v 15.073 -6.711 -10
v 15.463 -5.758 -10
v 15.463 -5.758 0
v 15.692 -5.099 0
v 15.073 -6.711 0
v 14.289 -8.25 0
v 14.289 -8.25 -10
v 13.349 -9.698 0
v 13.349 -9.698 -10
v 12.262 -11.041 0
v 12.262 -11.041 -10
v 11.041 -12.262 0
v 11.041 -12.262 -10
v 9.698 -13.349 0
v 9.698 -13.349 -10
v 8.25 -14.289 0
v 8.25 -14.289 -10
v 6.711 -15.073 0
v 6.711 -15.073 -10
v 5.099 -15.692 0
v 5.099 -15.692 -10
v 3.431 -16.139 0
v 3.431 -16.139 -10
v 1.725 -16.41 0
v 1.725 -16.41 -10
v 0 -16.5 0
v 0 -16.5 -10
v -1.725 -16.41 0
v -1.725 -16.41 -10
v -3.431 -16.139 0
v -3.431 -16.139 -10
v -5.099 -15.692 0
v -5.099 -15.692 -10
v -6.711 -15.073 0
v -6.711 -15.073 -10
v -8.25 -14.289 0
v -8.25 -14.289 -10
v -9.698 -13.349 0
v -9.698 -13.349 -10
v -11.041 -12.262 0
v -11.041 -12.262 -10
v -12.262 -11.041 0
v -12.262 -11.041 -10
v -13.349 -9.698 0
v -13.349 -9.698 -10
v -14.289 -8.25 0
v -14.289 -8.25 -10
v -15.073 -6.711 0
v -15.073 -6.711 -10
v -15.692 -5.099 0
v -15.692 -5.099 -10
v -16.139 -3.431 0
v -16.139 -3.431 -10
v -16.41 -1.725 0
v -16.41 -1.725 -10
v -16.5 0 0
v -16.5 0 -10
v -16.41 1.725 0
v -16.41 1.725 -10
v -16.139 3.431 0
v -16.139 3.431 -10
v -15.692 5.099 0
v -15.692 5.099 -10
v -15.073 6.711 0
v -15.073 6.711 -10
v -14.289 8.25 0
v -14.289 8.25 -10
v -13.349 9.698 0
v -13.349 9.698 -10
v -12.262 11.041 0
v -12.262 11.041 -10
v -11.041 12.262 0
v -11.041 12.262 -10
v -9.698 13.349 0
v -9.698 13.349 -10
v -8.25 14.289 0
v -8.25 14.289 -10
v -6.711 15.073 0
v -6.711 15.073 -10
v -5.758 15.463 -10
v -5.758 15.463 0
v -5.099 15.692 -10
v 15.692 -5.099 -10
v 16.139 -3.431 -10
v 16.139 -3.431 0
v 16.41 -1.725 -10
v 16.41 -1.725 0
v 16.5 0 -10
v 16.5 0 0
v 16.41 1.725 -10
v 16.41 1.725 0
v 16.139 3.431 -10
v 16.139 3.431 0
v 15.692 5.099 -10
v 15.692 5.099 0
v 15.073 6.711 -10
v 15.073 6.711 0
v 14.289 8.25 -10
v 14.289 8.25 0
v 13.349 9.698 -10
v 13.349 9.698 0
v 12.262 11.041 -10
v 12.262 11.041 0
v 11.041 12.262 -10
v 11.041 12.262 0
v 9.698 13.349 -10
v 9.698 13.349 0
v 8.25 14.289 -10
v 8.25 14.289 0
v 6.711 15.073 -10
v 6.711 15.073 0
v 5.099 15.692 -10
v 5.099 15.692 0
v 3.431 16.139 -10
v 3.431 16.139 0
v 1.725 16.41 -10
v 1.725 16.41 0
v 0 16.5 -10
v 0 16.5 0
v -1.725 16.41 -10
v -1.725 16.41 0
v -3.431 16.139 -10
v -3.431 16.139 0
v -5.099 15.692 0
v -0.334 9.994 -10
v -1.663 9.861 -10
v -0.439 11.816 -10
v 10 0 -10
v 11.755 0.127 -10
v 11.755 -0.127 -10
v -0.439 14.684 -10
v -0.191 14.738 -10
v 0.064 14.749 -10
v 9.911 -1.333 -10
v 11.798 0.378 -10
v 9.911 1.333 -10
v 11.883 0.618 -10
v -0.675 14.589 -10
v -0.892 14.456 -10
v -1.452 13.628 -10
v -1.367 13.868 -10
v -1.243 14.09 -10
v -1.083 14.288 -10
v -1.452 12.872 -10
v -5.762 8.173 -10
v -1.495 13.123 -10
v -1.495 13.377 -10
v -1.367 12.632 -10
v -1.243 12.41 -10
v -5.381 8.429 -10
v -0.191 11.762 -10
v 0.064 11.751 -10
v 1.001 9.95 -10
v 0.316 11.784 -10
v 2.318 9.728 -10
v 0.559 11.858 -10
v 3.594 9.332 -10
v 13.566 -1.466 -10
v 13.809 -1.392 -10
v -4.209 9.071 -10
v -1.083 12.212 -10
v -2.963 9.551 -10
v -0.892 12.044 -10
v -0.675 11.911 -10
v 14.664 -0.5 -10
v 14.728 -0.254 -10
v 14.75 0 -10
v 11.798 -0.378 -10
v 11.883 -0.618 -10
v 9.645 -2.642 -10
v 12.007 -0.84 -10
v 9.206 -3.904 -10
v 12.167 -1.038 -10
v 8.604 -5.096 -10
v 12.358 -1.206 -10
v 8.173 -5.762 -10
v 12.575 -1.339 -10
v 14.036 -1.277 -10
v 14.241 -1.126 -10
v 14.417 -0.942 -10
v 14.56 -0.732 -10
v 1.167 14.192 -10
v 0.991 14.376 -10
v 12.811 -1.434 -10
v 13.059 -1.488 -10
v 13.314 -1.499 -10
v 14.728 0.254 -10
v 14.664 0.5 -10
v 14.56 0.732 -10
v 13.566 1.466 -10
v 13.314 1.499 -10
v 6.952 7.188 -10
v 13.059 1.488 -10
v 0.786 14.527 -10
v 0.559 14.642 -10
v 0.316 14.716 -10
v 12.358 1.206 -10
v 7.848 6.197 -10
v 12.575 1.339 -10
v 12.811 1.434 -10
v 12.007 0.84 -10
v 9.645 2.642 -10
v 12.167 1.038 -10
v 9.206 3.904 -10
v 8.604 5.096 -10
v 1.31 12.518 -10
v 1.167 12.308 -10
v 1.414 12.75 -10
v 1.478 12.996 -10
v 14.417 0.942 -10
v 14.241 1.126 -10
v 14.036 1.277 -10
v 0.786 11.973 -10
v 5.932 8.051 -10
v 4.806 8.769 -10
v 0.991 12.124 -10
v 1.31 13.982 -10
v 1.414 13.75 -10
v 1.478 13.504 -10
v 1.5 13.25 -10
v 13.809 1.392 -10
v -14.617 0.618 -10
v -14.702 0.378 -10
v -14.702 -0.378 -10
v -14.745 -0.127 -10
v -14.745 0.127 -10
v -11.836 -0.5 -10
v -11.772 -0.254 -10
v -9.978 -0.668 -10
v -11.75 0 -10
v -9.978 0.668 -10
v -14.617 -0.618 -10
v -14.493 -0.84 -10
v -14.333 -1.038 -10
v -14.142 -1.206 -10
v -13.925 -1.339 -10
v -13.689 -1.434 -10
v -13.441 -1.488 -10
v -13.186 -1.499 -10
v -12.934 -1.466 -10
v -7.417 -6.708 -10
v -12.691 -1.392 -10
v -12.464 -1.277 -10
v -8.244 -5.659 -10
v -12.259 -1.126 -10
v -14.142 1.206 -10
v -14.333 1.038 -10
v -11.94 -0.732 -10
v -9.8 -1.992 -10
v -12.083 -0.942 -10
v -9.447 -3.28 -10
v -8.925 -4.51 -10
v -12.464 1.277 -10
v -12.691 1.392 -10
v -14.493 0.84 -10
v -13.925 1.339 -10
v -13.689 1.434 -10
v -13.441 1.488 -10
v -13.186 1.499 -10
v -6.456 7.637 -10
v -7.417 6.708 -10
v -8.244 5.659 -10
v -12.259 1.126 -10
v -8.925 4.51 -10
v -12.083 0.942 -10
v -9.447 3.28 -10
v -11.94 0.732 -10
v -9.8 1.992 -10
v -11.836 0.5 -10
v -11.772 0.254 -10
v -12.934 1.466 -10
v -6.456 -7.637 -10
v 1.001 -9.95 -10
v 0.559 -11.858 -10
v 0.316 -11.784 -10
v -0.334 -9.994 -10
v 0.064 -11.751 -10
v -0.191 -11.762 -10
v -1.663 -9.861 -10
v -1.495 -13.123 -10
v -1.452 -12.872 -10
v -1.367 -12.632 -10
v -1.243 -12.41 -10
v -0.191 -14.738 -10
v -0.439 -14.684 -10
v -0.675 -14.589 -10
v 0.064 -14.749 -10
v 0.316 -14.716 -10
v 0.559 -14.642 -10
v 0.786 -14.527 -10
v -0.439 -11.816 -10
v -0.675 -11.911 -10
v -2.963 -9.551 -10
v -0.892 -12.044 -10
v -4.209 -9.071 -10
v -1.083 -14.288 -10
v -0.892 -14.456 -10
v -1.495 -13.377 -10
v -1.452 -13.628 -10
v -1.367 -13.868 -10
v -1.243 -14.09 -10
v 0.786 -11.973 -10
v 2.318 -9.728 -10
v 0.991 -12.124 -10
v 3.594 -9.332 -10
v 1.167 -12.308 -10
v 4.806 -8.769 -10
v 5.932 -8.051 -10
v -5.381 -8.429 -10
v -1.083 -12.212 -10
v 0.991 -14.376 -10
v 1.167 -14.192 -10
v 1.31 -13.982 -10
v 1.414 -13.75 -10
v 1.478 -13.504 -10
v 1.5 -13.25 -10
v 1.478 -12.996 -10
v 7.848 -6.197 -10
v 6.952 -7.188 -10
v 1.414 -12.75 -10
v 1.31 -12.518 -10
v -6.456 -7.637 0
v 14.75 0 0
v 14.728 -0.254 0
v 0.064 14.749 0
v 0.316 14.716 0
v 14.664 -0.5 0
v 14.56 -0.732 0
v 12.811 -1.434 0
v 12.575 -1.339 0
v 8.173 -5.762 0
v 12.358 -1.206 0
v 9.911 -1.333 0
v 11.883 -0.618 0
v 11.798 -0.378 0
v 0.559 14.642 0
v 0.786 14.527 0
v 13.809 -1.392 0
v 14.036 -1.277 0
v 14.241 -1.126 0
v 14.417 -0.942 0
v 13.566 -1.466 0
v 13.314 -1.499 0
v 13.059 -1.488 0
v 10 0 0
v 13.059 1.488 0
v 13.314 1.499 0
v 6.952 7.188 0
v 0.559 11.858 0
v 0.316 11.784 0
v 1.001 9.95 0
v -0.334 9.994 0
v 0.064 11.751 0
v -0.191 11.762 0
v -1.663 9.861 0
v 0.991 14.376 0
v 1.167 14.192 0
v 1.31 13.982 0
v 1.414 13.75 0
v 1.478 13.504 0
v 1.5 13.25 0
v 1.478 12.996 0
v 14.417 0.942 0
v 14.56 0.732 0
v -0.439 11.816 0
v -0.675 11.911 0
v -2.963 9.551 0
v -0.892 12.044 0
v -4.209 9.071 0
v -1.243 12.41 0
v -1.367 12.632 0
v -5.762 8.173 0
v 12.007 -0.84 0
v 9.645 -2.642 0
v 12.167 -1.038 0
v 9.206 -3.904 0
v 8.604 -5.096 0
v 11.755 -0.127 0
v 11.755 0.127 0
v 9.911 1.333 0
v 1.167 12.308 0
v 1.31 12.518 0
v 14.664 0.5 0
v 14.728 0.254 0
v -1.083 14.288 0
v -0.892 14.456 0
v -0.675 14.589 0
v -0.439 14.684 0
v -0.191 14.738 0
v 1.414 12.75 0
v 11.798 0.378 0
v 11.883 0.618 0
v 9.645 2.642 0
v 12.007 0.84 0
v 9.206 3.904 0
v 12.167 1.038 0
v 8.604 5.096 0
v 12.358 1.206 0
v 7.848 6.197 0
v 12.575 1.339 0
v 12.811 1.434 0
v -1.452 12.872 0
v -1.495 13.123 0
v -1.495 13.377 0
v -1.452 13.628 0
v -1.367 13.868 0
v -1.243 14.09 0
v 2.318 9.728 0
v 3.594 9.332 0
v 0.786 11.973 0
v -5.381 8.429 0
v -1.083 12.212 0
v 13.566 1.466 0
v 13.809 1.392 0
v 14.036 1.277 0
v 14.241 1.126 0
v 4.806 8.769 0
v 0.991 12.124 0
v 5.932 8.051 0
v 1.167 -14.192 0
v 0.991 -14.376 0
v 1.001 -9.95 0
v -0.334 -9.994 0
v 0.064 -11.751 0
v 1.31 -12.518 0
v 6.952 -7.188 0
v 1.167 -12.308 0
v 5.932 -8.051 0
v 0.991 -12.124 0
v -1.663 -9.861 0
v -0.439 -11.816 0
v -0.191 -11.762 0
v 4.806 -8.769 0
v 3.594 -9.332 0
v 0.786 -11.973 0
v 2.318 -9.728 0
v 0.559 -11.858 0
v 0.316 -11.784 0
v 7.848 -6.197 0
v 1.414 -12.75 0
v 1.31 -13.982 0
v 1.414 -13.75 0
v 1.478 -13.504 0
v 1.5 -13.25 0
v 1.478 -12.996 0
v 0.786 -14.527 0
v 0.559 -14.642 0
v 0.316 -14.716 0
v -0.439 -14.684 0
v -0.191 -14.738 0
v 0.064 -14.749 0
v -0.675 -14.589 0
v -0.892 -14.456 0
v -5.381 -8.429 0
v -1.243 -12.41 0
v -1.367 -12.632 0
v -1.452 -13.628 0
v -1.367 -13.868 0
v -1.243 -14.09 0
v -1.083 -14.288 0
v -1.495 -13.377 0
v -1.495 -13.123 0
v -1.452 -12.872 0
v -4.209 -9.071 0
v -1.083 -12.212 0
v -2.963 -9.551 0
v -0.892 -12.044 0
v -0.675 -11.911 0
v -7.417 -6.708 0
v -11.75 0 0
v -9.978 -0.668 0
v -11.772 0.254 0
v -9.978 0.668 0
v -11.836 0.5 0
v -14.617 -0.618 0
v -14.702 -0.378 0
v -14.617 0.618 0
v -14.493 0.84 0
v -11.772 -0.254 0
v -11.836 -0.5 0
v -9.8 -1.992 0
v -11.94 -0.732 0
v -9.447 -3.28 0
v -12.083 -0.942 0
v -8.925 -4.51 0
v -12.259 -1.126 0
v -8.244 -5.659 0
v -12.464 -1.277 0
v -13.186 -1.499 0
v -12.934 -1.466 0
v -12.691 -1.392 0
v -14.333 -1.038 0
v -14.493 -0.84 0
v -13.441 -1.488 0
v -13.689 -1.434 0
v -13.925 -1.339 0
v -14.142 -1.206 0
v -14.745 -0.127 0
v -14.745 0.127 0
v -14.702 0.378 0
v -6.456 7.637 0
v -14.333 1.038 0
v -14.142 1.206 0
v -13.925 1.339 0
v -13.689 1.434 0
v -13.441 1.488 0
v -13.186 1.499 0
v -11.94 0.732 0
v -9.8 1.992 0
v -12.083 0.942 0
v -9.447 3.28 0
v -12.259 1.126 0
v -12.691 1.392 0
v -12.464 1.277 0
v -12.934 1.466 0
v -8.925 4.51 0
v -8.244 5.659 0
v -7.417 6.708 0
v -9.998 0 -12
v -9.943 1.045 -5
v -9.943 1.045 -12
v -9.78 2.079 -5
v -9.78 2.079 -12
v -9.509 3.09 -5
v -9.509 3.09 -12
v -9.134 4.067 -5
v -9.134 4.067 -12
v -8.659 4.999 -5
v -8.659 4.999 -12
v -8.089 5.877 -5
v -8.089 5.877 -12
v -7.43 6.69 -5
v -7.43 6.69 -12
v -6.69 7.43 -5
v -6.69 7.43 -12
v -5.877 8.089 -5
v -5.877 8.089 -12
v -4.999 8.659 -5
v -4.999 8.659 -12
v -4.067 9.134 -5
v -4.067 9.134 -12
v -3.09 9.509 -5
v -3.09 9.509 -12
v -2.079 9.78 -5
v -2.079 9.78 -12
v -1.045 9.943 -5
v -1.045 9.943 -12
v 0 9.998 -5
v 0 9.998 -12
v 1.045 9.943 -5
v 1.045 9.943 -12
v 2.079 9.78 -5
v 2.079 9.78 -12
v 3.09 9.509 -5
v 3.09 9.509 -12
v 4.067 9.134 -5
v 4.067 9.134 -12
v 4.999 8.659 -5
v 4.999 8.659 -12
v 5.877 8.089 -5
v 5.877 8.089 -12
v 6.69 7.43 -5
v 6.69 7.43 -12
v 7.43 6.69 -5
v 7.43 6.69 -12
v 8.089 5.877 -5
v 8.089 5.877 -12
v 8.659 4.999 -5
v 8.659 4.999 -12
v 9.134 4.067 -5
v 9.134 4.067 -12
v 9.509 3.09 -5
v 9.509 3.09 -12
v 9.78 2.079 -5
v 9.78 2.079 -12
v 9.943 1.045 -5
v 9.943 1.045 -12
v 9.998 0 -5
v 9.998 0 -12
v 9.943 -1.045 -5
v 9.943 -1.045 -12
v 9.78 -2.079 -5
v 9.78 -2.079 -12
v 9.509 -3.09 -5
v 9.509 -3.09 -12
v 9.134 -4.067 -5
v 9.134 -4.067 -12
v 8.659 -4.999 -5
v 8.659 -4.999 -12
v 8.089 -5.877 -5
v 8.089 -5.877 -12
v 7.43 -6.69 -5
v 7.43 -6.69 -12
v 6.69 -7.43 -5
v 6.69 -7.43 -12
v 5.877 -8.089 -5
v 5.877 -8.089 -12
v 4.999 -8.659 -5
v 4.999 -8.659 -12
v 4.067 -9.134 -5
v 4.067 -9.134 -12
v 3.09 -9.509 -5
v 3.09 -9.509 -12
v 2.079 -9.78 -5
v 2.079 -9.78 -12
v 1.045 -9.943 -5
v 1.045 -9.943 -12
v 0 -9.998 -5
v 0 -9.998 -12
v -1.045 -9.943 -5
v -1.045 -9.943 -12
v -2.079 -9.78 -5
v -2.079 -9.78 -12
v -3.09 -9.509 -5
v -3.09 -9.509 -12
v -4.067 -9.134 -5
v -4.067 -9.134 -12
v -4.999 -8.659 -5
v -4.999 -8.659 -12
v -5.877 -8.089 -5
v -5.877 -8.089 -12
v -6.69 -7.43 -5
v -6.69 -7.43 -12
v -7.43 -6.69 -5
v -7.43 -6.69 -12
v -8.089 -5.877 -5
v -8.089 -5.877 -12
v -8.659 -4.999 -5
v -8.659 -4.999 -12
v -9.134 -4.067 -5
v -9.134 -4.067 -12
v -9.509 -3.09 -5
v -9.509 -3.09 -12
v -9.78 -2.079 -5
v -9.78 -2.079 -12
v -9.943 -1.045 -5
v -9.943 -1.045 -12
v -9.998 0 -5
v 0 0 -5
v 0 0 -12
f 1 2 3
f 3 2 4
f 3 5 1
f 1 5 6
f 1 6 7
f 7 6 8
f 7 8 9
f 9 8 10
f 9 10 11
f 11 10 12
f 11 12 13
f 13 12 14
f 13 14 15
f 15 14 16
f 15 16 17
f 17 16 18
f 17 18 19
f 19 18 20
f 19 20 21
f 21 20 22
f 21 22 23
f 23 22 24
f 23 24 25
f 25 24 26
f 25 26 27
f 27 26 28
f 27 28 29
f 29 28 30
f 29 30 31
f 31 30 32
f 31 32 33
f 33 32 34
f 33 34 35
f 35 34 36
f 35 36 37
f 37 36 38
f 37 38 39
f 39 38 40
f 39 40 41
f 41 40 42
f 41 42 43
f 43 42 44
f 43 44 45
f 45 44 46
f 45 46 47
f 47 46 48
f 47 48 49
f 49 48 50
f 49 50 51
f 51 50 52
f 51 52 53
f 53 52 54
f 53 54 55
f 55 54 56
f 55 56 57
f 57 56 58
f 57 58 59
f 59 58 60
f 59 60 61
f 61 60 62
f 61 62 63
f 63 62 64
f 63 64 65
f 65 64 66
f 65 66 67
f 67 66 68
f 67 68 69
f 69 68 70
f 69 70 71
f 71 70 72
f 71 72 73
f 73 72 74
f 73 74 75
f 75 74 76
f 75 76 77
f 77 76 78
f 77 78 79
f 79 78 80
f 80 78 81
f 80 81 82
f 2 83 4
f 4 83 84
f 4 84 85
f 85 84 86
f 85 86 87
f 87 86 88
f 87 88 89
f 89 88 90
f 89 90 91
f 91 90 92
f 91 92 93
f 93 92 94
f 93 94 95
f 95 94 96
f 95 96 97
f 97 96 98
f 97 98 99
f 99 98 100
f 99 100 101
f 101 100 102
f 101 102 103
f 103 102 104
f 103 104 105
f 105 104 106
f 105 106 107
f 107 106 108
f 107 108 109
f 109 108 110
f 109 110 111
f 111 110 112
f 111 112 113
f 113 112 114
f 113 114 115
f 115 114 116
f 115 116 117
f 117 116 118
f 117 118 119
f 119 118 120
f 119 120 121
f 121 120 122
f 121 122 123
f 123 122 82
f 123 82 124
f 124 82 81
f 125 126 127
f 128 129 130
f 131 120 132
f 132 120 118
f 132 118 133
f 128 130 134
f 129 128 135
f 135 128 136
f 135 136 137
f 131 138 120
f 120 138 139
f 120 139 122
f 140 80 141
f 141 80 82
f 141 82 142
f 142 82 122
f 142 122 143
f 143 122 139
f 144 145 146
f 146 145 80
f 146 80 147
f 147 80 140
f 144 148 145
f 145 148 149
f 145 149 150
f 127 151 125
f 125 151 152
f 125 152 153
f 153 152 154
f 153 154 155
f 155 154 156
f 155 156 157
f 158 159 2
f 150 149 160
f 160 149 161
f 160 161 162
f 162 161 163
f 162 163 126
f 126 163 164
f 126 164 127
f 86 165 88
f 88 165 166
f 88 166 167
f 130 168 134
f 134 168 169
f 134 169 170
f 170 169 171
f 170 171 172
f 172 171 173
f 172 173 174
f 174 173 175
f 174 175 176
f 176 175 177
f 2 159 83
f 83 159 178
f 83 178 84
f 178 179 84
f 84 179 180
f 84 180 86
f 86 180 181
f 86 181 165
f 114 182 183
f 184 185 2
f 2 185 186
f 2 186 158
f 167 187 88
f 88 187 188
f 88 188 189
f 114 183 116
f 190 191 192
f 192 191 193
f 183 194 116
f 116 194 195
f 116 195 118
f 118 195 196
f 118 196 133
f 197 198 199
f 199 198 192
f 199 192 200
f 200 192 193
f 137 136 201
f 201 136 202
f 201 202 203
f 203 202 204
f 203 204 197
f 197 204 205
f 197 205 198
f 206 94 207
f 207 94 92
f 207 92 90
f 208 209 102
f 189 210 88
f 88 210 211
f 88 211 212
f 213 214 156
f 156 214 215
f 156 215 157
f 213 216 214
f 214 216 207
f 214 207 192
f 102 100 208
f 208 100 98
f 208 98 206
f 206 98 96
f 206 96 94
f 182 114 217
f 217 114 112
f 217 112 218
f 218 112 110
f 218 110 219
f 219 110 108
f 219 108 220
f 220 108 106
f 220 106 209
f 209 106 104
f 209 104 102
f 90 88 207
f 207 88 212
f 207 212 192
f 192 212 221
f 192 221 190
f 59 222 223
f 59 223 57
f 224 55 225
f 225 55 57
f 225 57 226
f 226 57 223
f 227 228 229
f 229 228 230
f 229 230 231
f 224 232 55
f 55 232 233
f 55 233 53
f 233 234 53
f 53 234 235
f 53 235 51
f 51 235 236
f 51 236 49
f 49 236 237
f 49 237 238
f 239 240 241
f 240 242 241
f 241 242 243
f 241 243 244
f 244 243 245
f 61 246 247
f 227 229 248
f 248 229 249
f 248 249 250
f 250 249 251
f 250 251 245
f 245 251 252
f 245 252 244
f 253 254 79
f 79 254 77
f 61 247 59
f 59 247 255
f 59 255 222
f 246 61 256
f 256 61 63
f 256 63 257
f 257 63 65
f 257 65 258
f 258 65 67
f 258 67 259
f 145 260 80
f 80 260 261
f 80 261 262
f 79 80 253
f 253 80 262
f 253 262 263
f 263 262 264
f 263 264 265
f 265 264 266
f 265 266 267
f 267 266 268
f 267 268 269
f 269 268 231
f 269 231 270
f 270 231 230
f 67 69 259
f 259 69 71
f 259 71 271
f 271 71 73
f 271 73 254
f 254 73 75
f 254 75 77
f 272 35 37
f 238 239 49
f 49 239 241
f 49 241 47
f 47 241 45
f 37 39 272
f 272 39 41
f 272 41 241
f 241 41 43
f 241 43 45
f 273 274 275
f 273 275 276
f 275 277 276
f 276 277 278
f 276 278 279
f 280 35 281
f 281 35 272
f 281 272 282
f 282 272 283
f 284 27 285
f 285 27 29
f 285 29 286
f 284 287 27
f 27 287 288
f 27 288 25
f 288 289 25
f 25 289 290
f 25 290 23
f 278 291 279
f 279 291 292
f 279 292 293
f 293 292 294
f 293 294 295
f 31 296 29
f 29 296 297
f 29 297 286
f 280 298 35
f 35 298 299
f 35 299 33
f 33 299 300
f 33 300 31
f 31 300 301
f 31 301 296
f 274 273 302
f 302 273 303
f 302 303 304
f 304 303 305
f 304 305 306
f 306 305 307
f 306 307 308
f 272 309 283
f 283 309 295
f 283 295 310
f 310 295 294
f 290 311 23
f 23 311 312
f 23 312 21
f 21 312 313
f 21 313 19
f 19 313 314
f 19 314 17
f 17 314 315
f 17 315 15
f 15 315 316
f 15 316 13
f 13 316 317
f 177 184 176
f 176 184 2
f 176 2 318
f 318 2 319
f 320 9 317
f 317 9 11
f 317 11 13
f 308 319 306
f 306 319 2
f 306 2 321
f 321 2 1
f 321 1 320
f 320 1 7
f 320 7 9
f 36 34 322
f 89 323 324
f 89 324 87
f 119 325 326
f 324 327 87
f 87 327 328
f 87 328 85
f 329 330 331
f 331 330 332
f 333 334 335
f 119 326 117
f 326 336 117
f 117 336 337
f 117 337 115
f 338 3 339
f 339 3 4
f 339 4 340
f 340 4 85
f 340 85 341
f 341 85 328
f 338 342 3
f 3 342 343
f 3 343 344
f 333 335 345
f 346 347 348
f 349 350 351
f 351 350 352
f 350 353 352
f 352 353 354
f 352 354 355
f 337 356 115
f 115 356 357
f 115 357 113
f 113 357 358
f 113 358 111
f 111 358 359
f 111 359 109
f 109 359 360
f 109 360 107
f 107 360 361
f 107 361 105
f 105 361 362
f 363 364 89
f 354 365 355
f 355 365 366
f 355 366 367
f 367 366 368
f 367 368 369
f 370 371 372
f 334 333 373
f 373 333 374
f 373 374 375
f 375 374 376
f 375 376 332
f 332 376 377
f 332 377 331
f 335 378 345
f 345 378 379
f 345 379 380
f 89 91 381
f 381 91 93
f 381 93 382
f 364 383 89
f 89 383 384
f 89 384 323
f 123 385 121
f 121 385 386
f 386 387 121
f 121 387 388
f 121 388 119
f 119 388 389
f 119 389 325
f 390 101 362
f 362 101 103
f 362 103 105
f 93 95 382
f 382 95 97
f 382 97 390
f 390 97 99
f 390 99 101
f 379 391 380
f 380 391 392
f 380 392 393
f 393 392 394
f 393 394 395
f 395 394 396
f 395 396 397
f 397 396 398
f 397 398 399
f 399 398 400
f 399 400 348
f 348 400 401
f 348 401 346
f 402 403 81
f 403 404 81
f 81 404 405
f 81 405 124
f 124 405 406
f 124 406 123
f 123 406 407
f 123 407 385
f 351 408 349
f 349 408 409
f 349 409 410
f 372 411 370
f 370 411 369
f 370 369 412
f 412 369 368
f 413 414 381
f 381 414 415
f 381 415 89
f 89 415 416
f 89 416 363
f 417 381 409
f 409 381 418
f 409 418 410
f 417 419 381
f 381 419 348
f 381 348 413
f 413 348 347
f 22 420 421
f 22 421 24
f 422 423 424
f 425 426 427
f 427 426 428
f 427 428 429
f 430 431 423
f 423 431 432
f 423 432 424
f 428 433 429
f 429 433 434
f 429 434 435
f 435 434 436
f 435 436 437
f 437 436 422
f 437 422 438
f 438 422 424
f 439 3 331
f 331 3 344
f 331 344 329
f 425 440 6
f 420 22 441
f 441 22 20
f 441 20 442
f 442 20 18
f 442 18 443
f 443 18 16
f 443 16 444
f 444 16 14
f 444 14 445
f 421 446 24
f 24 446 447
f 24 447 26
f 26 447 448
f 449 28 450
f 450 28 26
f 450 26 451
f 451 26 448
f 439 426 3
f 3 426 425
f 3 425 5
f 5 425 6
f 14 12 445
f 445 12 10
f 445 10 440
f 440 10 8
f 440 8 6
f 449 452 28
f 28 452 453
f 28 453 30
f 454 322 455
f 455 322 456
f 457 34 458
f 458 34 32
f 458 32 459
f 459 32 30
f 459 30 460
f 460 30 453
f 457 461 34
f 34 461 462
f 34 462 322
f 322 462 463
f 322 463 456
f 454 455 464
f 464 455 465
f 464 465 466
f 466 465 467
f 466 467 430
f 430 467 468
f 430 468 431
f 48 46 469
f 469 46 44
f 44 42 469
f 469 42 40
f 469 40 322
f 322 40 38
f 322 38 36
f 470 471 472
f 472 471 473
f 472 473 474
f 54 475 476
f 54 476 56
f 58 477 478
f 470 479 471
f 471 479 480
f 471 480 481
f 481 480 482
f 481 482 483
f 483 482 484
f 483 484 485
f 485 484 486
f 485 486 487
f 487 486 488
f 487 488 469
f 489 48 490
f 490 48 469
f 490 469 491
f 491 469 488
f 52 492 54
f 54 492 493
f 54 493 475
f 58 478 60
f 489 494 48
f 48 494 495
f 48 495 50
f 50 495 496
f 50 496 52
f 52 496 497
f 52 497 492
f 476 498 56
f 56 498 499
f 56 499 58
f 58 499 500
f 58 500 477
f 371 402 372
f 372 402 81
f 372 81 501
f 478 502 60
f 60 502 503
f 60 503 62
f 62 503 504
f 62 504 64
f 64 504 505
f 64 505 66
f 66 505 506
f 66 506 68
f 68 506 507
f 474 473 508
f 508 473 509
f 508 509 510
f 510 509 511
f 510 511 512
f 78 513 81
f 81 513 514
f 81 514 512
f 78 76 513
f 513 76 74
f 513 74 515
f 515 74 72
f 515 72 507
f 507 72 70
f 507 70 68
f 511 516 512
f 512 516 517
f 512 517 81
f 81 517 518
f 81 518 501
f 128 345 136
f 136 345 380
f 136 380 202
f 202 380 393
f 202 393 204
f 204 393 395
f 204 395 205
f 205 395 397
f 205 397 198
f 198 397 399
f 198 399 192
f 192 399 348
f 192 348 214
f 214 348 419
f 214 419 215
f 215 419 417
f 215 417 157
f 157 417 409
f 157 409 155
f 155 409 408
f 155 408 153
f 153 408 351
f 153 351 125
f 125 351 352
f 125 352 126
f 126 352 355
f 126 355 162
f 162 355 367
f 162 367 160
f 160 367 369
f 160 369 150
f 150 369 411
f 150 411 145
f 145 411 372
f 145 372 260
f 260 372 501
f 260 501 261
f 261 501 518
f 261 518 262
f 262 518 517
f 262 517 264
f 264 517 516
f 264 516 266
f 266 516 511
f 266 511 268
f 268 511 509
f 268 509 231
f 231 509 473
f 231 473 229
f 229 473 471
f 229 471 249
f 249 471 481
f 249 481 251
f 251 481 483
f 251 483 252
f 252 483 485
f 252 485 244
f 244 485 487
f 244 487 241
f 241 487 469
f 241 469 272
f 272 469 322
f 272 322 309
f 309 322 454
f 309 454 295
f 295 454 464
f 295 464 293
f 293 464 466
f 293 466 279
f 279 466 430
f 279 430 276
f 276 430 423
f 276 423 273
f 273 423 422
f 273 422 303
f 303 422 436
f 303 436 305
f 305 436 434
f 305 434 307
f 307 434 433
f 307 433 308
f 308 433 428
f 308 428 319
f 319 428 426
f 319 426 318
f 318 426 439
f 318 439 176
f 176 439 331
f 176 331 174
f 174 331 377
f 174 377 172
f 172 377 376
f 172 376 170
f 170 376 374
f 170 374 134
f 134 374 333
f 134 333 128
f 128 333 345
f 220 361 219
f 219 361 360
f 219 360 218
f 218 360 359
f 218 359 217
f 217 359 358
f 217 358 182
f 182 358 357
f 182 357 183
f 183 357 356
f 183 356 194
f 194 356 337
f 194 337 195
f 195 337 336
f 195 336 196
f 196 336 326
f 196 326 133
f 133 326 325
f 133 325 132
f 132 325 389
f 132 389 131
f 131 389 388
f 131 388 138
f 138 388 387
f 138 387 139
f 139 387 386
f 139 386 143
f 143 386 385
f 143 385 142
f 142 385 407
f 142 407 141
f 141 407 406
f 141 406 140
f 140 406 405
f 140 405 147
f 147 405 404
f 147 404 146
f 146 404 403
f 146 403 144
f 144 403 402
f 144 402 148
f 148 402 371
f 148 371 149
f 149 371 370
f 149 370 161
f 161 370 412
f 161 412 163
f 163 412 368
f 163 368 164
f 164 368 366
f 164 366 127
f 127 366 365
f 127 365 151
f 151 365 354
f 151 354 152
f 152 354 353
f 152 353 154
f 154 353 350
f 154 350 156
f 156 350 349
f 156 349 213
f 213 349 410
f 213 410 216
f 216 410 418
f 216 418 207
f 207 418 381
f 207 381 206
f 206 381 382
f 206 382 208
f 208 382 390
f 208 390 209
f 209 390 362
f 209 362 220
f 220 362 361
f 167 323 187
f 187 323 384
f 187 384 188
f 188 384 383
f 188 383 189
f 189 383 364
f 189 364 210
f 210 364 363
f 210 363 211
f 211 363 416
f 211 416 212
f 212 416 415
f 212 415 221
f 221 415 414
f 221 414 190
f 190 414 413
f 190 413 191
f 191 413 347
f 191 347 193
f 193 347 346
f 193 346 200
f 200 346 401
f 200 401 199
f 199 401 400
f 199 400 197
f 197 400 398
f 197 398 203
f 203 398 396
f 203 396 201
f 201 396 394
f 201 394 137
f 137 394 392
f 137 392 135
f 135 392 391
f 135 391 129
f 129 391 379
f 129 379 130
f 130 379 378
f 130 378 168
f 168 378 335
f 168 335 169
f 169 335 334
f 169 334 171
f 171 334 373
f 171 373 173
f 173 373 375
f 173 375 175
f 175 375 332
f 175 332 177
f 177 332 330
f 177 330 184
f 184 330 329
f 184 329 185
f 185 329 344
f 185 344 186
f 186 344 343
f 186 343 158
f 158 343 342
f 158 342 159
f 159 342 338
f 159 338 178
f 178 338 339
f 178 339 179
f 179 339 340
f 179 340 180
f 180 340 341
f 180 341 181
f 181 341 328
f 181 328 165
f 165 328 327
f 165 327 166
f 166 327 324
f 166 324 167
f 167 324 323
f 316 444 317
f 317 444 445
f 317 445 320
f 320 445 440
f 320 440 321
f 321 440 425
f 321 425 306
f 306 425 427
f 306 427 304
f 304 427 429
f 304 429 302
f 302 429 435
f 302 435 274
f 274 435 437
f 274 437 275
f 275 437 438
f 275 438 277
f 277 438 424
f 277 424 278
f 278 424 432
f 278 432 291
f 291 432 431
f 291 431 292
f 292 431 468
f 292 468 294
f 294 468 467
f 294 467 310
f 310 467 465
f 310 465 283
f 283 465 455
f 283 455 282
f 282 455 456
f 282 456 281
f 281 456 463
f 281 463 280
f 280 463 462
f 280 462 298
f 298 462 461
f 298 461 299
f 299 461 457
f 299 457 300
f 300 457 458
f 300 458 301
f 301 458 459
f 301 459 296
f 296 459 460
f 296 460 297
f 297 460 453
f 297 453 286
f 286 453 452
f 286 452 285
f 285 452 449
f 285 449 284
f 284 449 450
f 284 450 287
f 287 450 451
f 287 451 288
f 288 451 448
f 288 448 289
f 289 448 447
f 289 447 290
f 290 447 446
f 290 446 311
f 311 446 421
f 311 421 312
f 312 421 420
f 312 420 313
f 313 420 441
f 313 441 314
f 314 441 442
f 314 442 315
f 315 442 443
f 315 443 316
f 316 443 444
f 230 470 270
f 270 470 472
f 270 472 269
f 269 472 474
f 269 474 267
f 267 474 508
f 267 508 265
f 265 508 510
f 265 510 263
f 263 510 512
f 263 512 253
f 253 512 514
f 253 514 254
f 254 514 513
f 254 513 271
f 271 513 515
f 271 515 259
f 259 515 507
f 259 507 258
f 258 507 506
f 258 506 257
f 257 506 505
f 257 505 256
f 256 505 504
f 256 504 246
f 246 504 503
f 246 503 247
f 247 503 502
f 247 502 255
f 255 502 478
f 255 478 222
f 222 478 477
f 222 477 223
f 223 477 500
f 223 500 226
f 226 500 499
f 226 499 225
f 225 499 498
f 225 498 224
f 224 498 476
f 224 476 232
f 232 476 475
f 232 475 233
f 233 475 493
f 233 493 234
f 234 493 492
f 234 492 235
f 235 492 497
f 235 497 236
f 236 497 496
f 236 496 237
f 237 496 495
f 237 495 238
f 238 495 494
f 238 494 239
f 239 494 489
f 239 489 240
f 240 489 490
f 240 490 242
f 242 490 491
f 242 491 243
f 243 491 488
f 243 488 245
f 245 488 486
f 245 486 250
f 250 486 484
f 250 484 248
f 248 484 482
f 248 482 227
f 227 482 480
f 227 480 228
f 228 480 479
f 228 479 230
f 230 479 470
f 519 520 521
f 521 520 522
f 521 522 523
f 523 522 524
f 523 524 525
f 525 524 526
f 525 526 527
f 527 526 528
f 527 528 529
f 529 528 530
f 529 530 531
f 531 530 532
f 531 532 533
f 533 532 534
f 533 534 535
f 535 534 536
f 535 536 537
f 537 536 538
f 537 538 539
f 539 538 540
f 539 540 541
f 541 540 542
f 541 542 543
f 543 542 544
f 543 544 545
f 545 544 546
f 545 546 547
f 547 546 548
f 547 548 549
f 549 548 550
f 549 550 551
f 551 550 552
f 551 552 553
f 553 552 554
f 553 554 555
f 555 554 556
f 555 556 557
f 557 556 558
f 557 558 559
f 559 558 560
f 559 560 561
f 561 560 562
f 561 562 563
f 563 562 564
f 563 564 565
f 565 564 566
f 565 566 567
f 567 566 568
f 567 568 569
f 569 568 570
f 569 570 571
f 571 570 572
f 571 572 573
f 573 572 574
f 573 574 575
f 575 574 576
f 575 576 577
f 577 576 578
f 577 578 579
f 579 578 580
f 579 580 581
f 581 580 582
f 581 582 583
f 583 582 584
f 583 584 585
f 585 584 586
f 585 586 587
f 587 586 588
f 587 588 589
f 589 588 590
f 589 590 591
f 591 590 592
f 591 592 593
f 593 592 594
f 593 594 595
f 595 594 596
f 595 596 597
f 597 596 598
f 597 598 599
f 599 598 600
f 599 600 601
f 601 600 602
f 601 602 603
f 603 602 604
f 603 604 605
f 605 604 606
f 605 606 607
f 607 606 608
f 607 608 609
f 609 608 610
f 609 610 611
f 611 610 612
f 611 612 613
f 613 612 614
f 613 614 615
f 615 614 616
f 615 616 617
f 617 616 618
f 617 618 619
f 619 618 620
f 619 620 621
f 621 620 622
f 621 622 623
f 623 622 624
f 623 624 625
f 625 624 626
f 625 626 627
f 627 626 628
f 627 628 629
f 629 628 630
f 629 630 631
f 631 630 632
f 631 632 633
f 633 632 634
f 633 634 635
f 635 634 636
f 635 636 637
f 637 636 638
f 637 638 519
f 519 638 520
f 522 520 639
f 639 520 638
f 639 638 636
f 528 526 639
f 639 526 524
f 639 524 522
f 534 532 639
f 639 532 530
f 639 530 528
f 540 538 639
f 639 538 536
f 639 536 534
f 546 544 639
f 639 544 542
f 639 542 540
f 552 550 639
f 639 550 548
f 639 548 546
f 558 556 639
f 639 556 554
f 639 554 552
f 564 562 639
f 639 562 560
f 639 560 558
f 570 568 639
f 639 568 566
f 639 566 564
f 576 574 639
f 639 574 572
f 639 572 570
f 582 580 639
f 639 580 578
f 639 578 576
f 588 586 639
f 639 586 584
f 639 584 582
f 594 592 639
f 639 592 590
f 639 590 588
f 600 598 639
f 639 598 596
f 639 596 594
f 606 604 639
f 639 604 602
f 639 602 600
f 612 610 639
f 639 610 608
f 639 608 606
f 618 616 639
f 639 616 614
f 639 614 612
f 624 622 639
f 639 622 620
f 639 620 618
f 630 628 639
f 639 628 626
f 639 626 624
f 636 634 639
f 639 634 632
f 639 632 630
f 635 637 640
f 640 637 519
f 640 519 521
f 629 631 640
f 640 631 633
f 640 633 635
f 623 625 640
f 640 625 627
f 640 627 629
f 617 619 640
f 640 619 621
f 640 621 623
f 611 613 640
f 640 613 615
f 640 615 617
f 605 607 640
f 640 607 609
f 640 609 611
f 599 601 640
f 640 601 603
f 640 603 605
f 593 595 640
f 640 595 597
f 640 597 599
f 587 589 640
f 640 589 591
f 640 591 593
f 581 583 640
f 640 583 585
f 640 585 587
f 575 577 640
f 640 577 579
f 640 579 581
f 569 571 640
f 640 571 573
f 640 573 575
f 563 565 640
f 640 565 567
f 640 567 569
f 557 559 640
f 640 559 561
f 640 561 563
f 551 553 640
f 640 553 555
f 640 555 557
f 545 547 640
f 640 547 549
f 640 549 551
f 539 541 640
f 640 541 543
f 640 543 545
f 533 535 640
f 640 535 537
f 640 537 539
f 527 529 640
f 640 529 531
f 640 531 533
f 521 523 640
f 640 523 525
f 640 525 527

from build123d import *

# Parameters (mm, degrees)
IZIM1_R                     = 16.5
IZIM1_R_2                   = 10
IZIM1_R_3                   = 1.5
Y_KSEKLIK_EKSTR_ZYON1_DEPTH = 10
IZIM2_R                     = 9.998006204
Y_KSEKLIK_EKSTR_ZYON2_DEPTH = 5
IZIM4_R                     = 9.998006204
Y_KSEKLIK_EKSTR_ZYON3_DEPTH = 2


with BuildPart() as part:
    # Çizim1 → Yükseklik-Ekstrüzyon1 (new body)
    with BuildSketch(Plane.XY):
        Circle(IZIM1_R)
        Circle(IZIM1_R_2, mode=Mode.SUBTRACT)
        with Locations((0, 13.25)):
            Circle(IZIM1_R_3, mode=Mode.SUBTRACT)
        with Locations((13.25, 0)):
            Circle(IZIM1_R_3, mode=Mode.SUBTRACT)
        with Locations((0, -13.25)):
            Circle(IZIM1_R_3, mode=Mode.SUBTRACT)
        with Locations((-13.25, 0)):
            Circle(IZIM1_R_3, mode=Mode.SUBTRACT)
    extrude(amount=-Y_KSEKLIK_EKSTR_ZYON1_DEPTH)


with BuildPart() as body_2:
    # Çizim2 → Yükseklik-Ekstrüzyon2 (new body)
    with BuildSketch(Plane(origin=(0, 0, -10), x_dir=(-1, 0, 0), z_dir=(0, 0, -1))):
        Circle(IZIM2_R)
    extrude(amount=-Y_KSEKLIK_EKSTR_ZYON2_DEPTH)

    # Çizim4 → Yükseklik-Ekstrüzyon3 (add)
    with BuildSketch(Plane(origin=(0, 0, -10), x_dir=(-1, 0, 0), z_dir=(0, 0, -1))):
        Circle(IZIM4_R)
    extrude(amount=Y_KSEKLIK_EKSTR_ZYON3_DEPTH)


solid = Compound([part.part, body_2.part])
